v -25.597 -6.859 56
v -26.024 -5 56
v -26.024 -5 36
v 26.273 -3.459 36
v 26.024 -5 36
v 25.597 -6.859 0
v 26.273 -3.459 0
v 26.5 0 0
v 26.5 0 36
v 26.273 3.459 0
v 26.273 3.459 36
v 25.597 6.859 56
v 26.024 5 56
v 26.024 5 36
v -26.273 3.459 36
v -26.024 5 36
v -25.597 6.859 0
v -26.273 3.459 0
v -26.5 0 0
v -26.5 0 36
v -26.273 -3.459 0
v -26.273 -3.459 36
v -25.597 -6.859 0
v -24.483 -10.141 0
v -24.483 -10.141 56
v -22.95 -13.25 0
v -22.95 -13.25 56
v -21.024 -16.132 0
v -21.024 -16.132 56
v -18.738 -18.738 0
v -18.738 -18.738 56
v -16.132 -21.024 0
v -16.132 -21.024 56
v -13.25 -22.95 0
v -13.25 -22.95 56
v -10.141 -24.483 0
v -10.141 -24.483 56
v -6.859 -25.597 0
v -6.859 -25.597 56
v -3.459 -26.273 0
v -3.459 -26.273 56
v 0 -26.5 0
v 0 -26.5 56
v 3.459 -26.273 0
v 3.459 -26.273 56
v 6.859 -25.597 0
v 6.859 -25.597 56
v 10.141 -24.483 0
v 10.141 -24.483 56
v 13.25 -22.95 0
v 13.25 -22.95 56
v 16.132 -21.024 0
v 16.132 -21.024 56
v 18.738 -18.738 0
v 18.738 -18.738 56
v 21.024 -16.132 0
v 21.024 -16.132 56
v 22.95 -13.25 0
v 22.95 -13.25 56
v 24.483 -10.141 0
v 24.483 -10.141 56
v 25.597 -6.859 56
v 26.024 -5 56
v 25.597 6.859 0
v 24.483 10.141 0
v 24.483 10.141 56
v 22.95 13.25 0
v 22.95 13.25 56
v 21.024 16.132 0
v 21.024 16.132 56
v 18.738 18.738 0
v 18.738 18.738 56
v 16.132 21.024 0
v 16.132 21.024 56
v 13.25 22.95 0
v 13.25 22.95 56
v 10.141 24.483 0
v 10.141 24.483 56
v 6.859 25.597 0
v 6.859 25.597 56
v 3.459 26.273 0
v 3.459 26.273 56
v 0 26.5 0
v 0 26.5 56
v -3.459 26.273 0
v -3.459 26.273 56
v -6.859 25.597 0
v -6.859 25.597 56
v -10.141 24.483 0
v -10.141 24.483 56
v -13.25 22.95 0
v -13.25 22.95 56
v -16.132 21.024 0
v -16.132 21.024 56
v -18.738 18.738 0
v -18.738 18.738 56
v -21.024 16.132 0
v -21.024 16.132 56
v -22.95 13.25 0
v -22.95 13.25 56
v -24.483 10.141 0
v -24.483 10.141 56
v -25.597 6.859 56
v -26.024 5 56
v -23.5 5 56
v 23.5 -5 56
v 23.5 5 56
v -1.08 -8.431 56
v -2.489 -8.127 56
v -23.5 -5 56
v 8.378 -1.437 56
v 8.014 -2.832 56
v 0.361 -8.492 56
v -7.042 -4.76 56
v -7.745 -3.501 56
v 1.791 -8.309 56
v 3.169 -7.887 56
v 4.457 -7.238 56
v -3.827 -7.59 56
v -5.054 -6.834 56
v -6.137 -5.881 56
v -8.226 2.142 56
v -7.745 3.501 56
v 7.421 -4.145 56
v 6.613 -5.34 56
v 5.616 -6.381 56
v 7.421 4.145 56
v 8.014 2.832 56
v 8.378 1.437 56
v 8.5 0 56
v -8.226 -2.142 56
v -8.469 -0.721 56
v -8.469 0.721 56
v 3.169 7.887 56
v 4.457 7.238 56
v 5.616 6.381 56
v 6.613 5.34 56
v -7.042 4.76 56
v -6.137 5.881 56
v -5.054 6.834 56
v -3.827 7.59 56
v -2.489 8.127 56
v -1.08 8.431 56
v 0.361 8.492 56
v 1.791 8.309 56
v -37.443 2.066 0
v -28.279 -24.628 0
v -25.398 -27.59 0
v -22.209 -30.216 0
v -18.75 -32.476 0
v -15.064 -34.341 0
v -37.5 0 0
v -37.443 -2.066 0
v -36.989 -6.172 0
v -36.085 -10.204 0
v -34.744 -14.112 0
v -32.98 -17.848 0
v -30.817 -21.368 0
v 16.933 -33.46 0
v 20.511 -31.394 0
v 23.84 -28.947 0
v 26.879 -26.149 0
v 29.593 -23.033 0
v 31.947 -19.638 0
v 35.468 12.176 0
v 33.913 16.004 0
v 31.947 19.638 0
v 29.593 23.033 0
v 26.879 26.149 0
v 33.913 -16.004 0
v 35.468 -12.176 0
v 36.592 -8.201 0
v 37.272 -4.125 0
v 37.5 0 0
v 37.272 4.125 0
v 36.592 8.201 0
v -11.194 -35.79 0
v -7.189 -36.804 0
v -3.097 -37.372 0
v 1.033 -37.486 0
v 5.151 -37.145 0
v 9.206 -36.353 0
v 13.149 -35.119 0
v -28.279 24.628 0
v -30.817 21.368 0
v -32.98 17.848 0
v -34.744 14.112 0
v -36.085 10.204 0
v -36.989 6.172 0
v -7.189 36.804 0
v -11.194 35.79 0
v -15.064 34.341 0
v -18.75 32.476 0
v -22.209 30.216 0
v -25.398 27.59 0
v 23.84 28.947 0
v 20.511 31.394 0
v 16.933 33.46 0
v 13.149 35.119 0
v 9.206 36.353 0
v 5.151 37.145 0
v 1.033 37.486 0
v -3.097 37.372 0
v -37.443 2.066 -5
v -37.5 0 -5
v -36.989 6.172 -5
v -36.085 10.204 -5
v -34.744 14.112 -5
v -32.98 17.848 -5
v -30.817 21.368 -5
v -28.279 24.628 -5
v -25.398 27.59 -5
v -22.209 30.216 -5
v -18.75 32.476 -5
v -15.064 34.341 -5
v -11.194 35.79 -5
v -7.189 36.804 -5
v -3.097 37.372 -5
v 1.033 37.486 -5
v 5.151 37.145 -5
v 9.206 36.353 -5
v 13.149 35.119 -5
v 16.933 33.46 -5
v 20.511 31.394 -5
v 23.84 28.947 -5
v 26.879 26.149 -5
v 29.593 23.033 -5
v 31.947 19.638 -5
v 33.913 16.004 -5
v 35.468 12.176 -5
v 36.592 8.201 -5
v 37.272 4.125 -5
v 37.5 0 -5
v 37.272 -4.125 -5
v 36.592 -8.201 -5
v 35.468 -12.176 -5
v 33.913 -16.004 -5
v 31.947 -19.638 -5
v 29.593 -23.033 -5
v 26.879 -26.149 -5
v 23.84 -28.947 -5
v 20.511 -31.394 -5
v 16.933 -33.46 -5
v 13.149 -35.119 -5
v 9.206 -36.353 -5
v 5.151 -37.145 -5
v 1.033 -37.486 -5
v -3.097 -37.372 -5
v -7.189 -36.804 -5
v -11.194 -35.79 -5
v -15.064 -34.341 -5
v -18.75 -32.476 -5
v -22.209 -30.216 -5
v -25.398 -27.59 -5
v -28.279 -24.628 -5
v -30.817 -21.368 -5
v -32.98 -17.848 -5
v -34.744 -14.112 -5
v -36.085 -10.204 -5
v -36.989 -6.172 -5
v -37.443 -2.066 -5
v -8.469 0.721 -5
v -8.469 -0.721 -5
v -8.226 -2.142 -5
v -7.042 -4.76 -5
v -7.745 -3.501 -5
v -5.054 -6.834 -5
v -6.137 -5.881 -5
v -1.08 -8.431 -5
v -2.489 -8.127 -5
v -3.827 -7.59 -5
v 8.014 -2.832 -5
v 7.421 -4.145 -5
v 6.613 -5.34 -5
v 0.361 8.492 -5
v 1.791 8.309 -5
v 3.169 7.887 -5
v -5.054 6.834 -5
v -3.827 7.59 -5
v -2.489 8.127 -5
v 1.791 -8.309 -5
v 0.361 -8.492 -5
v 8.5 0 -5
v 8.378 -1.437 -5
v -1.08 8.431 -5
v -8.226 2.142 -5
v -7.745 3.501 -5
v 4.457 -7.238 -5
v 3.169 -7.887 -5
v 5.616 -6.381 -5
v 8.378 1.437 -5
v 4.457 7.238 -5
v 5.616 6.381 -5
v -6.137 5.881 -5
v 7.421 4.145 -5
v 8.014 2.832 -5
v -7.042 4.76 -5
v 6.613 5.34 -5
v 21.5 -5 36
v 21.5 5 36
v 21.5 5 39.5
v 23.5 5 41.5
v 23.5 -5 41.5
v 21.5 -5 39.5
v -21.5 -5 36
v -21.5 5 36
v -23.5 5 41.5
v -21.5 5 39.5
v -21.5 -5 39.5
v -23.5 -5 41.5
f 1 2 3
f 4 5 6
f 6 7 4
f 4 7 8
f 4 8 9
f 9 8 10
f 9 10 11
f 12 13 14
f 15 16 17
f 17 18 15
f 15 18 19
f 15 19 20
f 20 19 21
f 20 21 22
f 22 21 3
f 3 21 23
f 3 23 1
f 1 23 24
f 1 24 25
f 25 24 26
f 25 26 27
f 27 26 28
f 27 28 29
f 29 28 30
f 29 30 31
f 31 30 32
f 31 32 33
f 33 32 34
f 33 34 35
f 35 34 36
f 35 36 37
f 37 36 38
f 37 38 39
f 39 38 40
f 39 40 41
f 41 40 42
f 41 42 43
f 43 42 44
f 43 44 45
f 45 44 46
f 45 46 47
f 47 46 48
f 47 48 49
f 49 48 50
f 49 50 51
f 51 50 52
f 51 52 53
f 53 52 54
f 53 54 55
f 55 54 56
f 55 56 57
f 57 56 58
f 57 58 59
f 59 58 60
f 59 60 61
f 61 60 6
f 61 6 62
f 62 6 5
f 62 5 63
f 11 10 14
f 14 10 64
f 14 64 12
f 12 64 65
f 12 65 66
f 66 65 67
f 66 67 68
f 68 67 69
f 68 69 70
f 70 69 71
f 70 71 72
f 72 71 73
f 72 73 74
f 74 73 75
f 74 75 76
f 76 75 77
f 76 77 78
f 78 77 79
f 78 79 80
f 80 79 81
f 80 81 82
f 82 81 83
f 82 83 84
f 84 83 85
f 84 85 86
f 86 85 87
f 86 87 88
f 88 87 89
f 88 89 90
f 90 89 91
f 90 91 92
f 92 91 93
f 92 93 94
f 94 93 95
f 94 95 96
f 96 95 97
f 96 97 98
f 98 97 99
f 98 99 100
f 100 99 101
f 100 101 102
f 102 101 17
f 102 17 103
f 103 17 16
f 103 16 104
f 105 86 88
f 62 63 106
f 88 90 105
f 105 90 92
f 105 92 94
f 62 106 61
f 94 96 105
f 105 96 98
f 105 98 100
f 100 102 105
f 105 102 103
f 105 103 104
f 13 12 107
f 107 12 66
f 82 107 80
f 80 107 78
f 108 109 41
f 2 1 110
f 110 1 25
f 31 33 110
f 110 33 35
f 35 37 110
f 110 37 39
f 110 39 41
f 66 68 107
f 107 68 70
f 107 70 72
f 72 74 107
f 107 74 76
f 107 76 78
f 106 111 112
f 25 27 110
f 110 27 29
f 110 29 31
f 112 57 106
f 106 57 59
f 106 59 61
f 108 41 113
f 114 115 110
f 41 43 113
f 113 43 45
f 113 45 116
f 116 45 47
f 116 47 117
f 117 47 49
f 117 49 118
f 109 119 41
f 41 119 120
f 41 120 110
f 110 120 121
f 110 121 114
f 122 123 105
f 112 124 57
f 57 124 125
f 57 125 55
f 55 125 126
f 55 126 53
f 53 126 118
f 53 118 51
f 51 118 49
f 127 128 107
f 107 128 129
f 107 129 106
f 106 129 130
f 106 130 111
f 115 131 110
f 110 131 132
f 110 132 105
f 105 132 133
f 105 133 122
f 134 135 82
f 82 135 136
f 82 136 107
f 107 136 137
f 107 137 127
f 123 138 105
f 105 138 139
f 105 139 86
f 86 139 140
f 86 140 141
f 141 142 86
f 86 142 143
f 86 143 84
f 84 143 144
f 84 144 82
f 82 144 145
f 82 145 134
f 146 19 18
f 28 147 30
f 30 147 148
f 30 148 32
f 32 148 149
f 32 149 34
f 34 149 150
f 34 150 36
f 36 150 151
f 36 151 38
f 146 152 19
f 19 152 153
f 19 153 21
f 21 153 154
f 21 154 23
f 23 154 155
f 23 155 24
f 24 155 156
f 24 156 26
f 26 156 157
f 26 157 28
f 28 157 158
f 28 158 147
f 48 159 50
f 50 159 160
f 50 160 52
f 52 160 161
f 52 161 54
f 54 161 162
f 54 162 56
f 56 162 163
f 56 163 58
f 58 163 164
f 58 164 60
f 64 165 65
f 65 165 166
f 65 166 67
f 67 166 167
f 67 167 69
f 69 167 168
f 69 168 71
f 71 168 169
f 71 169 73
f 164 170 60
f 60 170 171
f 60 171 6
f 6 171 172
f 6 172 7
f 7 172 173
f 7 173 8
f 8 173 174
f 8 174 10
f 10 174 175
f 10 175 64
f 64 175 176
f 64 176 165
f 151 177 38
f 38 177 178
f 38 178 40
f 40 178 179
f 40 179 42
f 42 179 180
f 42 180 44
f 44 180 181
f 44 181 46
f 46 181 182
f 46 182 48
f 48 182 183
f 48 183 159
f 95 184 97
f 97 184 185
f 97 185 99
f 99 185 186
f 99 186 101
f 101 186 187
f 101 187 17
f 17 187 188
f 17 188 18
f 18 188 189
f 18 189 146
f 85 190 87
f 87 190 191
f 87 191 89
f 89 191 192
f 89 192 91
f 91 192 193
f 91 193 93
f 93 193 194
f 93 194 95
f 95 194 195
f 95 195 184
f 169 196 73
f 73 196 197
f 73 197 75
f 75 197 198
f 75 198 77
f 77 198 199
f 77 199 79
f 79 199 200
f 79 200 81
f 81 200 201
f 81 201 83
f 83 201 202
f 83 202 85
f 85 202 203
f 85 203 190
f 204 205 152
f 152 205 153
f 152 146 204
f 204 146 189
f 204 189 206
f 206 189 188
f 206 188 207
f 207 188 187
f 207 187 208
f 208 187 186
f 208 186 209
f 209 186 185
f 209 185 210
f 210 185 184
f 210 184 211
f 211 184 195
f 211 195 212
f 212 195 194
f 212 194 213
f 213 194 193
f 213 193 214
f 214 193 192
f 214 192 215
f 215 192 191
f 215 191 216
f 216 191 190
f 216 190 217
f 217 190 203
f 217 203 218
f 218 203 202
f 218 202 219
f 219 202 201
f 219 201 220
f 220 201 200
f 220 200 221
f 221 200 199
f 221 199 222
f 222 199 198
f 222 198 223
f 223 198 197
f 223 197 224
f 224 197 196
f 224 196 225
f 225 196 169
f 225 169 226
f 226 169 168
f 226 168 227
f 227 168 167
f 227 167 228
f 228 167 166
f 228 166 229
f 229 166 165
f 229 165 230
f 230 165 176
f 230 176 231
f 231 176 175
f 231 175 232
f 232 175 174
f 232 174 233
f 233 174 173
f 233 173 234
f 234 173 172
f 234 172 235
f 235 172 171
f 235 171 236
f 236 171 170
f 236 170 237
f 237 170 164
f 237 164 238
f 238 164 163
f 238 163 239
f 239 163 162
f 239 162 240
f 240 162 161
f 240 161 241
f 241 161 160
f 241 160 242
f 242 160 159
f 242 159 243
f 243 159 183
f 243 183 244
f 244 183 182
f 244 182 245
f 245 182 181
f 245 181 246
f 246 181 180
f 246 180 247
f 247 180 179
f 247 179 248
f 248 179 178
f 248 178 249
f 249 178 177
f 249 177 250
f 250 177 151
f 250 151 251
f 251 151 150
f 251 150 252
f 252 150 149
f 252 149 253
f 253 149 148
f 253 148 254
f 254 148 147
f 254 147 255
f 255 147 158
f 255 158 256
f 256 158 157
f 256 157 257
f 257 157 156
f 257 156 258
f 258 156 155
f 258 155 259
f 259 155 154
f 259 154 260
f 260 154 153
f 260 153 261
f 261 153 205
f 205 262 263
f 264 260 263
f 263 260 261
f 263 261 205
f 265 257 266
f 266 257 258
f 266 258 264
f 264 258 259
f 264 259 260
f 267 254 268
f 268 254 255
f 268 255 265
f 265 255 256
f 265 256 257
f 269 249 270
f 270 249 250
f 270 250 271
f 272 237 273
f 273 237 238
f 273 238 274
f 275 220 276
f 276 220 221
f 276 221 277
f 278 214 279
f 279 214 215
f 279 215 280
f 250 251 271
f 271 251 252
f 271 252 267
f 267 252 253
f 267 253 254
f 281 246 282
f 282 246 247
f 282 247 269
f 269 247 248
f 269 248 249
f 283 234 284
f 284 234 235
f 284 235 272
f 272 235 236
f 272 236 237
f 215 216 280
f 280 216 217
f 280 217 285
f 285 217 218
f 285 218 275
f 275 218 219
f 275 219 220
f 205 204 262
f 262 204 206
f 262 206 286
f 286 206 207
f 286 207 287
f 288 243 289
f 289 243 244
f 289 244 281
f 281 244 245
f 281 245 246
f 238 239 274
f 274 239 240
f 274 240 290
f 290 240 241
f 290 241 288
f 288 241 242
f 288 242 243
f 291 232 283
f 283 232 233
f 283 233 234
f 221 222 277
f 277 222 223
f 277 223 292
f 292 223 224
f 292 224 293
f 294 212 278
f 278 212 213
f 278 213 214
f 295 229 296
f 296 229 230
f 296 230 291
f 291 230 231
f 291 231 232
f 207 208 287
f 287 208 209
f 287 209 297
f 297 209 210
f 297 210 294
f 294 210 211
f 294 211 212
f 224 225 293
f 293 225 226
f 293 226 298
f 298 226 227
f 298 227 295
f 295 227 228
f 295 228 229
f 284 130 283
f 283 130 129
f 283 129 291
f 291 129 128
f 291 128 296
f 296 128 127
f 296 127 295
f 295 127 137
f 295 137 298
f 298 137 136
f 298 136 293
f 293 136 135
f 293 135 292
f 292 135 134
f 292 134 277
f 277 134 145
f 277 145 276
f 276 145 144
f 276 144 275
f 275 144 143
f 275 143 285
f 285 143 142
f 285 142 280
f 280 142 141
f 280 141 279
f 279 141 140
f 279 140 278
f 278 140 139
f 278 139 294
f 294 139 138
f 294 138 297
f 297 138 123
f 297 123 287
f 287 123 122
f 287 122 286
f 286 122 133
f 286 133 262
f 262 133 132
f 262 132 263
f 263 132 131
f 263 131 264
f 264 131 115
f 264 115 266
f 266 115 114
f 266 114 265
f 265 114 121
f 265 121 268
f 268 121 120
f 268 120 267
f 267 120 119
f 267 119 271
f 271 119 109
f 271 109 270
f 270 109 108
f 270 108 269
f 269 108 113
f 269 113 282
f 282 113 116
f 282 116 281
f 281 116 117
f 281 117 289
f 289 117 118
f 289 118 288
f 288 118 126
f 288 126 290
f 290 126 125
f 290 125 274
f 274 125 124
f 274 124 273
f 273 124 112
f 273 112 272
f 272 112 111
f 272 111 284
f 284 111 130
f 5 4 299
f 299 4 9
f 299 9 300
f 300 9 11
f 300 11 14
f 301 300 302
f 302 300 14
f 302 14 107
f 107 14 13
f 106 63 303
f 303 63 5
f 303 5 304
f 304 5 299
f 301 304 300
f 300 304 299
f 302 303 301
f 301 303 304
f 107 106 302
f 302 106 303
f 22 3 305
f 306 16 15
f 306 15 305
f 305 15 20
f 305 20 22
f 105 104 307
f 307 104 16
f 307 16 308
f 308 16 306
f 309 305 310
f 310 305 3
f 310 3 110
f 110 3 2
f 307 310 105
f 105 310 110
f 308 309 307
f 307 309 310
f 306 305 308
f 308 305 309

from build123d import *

# Parameters (mm, degrees)
SKETCH1_R           = 26.5
BOSS_EXTRUDE1_DEPTH = 56
SKETCH4_R           = 37.5
BOSS_EXTRUDE2_DEPTH = 5
SKETCH5_R           = 8.5
CUT_EXTRUDE1_DEPTH  = 81.830068663
CUT_EXTRUDE2_DEPTH  = 5


with BuildPart() as part:
    # Sketch1 → Boss-Extrude1 (new body)
    with BuildSketch(Plane.XY):
        Circle(SKETCH1_R)
    extrude(amount=BOSS_EXTRUDE1_DEPTH)

    # Sketch4 → Boss-Extrude2 (add)
    with BuildSketch(Plane(origin=(0, 0, 0), x_dir=(-1, 0, 0), z_dir=(0, 0, -1))):
        Circle(SKETCH4_R)
    extrude(amount=BOSS_EXTRUDE2_DEPTH)

    # Sketch5 → Cut-Extrude1 (cut, through all)
    with BuildSketch(Plane.XY.offset(56)):
        Circle(SKETCH5_R)
    extrude(amount=-CUT_EXTRUDE1_DEPTH, mode=Mode.SUBTRACT)

    # Sketch6 → Cut-Extrude2 (cut, symmetric)
    with BuildSketch(Plane(origin=(0, 0, 0), x_dir=(1, 0, 0), z_dir=(0, 1, 0))):
        Polygon((23.5, -56), (26.5, -56), (26.5, -36), (21.5, -36), (21.5, -39.5), (23.5, -41.5), align=None)
    cut_extrude2 = extrude(amount=CUT_EXTRUDE2_DEPTH, both=True, mode=Mode.SUBTRACT)

    # Mirror1: Cut-Extrude2 across plane
    add(cut_extrude2.mirror(Plane(origin=(0, 0, 0), x_dir=(0, 0, 1), z_dir=(1, 0, 0))), mode=Mode.SUBTRACT)


solid = part.part
